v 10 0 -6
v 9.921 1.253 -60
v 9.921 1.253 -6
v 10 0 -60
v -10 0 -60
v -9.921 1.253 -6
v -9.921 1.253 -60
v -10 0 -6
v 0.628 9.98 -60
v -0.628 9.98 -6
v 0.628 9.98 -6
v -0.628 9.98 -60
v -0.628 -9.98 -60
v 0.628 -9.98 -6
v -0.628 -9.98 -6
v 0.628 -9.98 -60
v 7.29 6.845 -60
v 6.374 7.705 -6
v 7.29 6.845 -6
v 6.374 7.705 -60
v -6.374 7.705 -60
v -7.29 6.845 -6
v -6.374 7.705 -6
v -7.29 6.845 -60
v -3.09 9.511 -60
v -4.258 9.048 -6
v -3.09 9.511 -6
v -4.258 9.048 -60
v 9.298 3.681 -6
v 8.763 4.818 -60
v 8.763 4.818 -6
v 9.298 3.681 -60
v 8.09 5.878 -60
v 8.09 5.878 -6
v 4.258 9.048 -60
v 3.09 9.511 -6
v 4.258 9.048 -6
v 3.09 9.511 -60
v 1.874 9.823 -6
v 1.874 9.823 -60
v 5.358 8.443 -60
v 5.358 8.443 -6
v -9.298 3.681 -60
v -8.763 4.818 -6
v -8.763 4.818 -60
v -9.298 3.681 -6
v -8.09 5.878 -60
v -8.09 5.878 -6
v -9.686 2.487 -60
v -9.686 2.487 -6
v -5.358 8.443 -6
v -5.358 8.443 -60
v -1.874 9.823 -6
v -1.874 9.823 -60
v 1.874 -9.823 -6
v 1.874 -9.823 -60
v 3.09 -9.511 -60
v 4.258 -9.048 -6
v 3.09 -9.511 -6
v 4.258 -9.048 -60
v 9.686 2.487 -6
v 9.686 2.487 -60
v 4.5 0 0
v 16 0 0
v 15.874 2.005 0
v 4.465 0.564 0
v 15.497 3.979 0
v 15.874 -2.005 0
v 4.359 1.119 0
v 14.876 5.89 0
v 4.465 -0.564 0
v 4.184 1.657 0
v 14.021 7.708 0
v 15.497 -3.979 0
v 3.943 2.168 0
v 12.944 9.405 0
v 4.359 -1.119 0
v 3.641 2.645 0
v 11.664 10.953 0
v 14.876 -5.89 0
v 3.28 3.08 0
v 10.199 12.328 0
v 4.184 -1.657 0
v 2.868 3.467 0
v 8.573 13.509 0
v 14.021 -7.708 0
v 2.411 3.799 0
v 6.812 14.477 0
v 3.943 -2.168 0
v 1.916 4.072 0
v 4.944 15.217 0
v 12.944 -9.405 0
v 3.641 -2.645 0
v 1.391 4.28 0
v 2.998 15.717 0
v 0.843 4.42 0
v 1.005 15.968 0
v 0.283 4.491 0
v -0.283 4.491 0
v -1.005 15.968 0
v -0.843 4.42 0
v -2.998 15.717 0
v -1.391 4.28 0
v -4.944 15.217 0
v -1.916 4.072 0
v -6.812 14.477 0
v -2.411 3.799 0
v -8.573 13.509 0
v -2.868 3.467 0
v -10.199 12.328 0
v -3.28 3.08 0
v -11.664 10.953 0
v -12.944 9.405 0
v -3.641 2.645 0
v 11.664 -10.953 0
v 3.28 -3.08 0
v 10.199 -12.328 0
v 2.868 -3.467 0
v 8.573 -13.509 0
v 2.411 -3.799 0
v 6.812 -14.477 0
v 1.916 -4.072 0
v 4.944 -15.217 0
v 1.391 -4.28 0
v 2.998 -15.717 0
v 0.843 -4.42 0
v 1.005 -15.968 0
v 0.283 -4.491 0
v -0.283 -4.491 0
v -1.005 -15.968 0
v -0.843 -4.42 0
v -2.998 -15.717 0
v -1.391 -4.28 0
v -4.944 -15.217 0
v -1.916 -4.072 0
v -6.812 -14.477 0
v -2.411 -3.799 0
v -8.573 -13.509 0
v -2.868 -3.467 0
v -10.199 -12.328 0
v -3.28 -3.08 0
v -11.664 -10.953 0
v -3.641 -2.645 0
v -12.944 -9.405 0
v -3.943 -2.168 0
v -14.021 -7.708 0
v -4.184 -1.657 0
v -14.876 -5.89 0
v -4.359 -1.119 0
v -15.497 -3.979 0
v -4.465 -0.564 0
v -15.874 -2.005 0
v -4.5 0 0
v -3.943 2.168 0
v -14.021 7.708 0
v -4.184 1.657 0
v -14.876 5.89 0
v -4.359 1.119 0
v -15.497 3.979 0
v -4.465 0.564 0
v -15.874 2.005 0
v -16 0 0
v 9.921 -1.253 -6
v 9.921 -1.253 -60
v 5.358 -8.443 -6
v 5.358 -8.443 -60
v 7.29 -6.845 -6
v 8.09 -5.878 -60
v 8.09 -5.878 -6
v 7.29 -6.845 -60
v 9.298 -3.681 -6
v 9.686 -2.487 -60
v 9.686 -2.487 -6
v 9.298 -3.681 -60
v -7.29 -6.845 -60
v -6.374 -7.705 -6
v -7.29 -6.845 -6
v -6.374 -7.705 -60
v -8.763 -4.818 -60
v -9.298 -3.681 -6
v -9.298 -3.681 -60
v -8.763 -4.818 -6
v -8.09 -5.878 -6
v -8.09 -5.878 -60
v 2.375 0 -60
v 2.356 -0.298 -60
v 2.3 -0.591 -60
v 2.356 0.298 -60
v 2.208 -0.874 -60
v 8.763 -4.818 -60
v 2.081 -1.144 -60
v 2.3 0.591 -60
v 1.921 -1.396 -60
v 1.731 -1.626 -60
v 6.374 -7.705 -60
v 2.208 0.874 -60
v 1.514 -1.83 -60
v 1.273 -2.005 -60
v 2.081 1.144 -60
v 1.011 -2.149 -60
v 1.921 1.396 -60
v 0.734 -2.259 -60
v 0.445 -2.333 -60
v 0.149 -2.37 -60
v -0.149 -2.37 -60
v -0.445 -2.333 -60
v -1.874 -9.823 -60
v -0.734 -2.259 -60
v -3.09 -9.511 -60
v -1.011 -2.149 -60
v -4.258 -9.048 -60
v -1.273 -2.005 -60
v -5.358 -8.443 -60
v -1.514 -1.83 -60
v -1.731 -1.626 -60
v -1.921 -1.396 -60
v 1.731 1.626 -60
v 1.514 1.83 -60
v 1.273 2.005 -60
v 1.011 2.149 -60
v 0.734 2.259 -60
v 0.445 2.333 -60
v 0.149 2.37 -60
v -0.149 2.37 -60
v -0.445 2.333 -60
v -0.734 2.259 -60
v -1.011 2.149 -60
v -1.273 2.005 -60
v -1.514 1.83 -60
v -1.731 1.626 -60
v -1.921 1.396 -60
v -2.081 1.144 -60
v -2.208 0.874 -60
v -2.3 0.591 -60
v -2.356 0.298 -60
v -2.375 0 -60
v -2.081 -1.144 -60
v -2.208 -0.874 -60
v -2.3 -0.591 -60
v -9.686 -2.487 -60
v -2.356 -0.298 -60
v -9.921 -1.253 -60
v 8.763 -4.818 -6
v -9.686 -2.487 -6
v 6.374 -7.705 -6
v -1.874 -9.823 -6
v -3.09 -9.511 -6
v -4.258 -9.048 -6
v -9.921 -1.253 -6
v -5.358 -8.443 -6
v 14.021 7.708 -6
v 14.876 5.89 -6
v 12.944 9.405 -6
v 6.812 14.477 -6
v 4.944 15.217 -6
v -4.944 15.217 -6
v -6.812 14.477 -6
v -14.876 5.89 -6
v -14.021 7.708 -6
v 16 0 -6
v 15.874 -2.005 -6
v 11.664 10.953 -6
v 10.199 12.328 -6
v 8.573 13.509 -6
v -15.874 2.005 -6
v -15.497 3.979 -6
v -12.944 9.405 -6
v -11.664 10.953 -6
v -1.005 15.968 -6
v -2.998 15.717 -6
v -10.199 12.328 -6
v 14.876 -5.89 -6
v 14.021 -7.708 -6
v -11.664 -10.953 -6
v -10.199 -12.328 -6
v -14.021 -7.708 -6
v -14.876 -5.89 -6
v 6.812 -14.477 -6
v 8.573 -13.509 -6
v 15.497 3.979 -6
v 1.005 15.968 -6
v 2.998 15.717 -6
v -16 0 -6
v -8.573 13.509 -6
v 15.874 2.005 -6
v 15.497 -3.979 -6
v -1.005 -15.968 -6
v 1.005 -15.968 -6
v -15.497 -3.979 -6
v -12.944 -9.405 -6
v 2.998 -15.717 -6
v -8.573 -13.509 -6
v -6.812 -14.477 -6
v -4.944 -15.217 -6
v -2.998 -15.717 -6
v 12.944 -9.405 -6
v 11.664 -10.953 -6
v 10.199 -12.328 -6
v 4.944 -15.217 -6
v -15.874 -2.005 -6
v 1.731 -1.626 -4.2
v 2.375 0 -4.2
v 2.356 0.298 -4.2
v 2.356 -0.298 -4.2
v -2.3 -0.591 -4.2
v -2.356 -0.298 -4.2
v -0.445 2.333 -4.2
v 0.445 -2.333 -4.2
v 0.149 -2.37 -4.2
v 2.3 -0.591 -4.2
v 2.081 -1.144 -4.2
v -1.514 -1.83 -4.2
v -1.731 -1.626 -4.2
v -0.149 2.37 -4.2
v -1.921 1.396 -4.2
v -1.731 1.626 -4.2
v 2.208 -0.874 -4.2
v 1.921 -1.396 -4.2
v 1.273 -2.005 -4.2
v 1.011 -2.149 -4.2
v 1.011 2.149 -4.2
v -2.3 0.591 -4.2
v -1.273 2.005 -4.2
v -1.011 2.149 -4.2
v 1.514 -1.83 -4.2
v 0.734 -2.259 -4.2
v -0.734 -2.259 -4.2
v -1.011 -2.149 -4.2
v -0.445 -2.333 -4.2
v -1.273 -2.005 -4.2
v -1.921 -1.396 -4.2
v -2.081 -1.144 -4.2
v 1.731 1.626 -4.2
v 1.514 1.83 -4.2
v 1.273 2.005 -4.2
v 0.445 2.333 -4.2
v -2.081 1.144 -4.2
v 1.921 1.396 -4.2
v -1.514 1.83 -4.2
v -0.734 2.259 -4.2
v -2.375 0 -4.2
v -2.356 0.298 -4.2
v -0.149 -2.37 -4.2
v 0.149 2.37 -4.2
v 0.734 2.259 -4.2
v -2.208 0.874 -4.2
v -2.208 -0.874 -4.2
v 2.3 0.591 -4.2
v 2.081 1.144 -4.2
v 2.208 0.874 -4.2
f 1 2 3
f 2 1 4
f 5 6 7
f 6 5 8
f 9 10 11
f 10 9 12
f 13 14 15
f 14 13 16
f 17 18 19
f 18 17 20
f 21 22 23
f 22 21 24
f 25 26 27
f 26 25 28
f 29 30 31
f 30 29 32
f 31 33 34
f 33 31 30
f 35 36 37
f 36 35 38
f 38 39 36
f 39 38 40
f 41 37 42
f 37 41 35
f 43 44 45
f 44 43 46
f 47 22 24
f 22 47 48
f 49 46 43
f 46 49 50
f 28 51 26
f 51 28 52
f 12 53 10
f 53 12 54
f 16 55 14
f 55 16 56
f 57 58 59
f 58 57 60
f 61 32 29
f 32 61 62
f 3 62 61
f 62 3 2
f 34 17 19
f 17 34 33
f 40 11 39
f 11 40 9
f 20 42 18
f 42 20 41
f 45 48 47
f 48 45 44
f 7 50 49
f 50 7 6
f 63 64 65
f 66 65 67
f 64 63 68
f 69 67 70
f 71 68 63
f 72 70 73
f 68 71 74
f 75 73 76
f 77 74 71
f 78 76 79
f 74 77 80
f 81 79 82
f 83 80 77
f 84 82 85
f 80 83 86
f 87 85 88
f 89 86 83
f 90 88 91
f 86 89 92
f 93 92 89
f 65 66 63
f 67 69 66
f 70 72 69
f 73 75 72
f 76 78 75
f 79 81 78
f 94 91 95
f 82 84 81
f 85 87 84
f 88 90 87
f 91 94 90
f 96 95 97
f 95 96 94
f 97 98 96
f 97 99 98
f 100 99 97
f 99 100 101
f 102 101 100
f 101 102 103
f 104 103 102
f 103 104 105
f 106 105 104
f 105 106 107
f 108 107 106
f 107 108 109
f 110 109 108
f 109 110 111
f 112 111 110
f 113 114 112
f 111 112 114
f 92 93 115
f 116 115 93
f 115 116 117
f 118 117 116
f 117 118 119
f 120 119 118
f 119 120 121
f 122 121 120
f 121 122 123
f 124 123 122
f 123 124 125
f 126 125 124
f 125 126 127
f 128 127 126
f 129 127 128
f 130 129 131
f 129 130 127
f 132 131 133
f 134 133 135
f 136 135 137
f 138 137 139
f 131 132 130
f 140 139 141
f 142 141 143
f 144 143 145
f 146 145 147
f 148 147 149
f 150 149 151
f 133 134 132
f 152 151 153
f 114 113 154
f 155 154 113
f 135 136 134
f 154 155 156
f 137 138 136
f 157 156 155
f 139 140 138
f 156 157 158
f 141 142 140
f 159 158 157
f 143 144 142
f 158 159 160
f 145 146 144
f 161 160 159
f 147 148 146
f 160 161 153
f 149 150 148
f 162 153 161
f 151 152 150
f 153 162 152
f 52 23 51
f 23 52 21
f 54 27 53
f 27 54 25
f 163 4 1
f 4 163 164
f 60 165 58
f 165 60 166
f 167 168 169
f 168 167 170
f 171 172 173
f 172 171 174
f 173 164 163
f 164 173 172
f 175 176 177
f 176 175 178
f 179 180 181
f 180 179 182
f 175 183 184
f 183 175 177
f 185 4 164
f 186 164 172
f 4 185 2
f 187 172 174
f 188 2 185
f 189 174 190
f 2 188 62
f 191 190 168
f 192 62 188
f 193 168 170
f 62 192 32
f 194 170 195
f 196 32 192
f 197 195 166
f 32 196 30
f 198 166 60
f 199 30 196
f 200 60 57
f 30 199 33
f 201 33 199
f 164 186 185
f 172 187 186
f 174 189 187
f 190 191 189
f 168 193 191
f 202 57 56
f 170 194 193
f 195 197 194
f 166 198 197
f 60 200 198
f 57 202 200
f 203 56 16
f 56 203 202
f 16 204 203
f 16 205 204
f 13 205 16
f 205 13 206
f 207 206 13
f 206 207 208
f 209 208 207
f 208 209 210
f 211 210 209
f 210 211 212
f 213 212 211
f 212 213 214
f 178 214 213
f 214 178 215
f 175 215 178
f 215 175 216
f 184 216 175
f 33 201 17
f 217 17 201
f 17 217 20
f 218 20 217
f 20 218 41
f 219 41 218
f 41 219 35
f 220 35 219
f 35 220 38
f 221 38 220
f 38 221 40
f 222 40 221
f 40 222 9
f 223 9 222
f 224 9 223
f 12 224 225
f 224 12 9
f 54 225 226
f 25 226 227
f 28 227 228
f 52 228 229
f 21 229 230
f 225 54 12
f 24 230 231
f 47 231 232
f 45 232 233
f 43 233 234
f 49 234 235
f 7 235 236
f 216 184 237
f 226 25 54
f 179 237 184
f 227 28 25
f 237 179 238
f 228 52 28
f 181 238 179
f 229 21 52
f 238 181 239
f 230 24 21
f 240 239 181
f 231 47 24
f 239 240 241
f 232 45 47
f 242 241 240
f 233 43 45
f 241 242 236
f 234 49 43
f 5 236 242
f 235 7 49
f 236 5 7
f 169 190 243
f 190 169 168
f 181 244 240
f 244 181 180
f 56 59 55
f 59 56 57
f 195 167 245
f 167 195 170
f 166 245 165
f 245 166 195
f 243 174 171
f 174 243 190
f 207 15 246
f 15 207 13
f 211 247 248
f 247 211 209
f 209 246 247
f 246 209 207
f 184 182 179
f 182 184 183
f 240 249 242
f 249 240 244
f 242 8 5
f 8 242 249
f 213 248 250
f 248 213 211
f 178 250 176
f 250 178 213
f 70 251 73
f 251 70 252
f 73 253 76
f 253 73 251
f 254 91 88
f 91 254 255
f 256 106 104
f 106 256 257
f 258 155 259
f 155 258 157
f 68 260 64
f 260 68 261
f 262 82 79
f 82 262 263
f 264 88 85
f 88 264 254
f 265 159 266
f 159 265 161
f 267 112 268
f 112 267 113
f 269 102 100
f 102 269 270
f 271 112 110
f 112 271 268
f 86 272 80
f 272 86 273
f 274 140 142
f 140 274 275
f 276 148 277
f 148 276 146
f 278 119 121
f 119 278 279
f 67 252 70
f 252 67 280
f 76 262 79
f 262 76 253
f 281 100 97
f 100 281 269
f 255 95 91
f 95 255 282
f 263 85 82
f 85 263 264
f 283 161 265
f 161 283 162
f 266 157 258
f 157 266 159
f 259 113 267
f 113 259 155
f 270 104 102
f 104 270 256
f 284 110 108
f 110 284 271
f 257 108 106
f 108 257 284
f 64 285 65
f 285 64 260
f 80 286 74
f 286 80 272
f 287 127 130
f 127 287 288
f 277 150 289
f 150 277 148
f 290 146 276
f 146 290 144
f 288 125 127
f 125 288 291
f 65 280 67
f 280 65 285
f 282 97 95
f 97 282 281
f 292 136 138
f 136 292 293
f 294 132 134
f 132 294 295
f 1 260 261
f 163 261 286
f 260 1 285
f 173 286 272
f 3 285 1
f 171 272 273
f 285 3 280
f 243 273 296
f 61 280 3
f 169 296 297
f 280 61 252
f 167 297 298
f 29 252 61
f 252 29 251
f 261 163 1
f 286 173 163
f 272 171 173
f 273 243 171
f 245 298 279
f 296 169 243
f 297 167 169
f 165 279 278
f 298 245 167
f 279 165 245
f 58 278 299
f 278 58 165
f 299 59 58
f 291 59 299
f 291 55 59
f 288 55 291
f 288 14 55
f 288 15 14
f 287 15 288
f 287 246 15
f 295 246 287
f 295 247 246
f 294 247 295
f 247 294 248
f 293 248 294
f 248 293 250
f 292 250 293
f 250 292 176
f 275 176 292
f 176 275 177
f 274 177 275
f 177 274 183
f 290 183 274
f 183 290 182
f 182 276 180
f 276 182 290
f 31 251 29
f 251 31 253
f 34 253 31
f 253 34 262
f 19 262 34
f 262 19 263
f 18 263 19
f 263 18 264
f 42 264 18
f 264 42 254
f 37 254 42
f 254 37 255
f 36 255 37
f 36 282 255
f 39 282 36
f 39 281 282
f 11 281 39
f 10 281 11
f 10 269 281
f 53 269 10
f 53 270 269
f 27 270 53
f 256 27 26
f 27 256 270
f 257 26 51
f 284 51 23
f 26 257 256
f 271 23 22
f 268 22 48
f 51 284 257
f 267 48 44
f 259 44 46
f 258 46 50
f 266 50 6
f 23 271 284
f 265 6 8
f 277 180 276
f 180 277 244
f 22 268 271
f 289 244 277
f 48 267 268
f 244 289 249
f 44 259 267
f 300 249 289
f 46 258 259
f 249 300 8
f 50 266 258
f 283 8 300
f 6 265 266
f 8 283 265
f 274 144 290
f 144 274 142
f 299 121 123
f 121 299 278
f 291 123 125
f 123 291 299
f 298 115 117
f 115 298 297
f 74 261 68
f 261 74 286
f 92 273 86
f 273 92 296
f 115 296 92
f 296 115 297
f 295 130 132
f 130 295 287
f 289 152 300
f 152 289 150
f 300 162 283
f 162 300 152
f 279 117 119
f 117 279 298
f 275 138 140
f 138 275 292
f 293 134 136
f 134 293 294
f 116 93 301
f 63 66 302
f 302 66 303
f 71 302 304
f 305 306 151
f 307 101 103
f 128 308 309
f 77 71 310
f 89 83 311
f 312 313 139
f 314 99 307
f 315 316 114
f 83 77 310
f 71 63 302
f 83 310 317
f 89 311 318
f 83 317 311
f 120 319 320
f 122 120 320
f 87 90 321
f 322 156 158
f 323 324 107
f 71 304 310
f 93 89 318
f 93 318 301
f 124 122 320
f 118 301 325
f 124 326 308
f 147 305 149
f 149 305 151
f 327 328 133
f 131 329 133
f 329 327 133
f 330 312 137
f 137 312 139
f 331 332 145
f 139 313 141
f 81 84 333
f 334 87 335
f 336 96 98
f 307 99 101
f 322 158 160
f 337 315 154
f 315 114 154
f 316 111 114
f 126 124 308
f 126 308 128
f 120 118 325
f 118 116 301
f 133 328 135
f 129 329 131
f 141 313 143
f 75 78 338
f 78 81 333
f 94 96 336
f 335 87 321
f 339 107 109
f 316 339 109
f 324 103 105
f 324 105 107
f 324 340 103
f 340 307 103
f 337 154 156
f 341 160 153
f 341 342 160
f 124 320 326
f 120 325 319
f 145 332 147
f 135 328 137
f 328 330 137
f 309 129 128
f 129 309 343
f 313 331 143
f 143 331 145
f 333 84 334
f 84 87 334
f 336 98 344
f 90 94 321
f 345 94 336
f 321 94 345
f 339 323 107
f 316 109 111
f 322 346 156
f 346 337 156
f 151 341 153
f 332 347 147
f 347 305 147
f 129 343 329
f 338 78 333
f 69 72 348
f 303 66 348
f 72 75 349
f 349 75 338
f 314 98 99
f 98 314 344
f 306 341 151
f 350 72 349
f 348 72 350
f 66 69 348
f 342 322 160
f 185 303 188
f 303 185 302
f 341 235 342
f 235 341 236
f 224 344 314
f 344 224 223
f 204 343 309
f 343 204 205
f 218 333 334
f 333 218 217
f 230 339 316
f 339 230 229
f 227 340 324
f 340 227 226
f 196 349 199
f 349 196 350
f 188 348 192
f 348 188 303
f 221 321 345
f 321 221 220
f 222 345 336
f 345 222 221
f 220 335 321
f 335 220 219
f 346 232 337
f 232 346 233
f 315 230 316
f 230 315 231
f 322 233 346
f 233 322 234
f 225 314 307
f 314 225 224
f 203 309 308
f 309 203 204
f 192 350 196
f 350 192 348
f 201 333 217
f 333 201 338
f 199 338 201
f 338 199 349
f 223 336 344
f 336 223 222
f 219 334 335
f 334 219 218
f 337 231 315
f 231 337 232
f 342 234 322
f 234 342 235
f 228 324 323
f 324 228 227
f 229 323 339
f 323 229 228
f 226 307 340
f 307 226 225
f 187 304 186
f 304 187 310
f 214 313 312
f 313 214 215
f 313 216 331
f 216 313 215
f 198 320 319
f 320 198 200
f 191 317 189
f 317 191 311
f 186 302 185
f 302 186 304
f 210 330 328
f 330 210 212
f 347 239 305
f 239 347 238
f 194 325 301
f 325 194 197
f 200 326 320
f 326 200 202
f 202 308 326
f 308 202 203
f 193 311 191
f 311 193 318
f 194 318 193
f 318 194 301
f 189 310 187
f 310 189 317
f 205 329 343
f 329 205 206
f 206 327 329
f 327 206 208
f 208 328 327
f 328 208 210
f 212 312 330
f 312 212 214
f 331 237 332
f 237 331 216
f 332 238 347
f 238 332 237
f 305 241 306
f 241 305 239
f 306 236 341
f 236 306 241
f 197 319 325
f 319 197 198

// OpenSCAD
$fn = 50;


difference() {
	union() {
		translate(v = [0, 0, -60.0000000000]) {
			cylinder(h = 60, r = 10.0000000000);
		}
		translate(v = [0, 0, -6.0000000000]) {
			cylinder(h = 6, r = 16.0000000000);
		}
	}
	union() {
		translate(v = [0, 0, 0]) {
			rotate(a = [0, 0, 0]) {
				difference() {
					union() {
						#translate(v = [0, 0, -60.0000000000]) {
							cylinder(h = 60, r = 2.2500000000);
						}
						#translate(v = [0, 0, -4.2000000000]) {
							cylinder(h = 4.2000000000, r1 = 2.3750000000, r2 = 4.5000000000);
						}
						#translate(v = [0, 0, -60.0000000000]) {
							cylinder(h = 60, r = 2.3750000000);
						}
						#translate(v = [0, 0, -60.0000000000]) {
							cylinder(h = 60, r = 2.2500000000);
						}
					}
					union();
				}
			}
		}
	}
}
